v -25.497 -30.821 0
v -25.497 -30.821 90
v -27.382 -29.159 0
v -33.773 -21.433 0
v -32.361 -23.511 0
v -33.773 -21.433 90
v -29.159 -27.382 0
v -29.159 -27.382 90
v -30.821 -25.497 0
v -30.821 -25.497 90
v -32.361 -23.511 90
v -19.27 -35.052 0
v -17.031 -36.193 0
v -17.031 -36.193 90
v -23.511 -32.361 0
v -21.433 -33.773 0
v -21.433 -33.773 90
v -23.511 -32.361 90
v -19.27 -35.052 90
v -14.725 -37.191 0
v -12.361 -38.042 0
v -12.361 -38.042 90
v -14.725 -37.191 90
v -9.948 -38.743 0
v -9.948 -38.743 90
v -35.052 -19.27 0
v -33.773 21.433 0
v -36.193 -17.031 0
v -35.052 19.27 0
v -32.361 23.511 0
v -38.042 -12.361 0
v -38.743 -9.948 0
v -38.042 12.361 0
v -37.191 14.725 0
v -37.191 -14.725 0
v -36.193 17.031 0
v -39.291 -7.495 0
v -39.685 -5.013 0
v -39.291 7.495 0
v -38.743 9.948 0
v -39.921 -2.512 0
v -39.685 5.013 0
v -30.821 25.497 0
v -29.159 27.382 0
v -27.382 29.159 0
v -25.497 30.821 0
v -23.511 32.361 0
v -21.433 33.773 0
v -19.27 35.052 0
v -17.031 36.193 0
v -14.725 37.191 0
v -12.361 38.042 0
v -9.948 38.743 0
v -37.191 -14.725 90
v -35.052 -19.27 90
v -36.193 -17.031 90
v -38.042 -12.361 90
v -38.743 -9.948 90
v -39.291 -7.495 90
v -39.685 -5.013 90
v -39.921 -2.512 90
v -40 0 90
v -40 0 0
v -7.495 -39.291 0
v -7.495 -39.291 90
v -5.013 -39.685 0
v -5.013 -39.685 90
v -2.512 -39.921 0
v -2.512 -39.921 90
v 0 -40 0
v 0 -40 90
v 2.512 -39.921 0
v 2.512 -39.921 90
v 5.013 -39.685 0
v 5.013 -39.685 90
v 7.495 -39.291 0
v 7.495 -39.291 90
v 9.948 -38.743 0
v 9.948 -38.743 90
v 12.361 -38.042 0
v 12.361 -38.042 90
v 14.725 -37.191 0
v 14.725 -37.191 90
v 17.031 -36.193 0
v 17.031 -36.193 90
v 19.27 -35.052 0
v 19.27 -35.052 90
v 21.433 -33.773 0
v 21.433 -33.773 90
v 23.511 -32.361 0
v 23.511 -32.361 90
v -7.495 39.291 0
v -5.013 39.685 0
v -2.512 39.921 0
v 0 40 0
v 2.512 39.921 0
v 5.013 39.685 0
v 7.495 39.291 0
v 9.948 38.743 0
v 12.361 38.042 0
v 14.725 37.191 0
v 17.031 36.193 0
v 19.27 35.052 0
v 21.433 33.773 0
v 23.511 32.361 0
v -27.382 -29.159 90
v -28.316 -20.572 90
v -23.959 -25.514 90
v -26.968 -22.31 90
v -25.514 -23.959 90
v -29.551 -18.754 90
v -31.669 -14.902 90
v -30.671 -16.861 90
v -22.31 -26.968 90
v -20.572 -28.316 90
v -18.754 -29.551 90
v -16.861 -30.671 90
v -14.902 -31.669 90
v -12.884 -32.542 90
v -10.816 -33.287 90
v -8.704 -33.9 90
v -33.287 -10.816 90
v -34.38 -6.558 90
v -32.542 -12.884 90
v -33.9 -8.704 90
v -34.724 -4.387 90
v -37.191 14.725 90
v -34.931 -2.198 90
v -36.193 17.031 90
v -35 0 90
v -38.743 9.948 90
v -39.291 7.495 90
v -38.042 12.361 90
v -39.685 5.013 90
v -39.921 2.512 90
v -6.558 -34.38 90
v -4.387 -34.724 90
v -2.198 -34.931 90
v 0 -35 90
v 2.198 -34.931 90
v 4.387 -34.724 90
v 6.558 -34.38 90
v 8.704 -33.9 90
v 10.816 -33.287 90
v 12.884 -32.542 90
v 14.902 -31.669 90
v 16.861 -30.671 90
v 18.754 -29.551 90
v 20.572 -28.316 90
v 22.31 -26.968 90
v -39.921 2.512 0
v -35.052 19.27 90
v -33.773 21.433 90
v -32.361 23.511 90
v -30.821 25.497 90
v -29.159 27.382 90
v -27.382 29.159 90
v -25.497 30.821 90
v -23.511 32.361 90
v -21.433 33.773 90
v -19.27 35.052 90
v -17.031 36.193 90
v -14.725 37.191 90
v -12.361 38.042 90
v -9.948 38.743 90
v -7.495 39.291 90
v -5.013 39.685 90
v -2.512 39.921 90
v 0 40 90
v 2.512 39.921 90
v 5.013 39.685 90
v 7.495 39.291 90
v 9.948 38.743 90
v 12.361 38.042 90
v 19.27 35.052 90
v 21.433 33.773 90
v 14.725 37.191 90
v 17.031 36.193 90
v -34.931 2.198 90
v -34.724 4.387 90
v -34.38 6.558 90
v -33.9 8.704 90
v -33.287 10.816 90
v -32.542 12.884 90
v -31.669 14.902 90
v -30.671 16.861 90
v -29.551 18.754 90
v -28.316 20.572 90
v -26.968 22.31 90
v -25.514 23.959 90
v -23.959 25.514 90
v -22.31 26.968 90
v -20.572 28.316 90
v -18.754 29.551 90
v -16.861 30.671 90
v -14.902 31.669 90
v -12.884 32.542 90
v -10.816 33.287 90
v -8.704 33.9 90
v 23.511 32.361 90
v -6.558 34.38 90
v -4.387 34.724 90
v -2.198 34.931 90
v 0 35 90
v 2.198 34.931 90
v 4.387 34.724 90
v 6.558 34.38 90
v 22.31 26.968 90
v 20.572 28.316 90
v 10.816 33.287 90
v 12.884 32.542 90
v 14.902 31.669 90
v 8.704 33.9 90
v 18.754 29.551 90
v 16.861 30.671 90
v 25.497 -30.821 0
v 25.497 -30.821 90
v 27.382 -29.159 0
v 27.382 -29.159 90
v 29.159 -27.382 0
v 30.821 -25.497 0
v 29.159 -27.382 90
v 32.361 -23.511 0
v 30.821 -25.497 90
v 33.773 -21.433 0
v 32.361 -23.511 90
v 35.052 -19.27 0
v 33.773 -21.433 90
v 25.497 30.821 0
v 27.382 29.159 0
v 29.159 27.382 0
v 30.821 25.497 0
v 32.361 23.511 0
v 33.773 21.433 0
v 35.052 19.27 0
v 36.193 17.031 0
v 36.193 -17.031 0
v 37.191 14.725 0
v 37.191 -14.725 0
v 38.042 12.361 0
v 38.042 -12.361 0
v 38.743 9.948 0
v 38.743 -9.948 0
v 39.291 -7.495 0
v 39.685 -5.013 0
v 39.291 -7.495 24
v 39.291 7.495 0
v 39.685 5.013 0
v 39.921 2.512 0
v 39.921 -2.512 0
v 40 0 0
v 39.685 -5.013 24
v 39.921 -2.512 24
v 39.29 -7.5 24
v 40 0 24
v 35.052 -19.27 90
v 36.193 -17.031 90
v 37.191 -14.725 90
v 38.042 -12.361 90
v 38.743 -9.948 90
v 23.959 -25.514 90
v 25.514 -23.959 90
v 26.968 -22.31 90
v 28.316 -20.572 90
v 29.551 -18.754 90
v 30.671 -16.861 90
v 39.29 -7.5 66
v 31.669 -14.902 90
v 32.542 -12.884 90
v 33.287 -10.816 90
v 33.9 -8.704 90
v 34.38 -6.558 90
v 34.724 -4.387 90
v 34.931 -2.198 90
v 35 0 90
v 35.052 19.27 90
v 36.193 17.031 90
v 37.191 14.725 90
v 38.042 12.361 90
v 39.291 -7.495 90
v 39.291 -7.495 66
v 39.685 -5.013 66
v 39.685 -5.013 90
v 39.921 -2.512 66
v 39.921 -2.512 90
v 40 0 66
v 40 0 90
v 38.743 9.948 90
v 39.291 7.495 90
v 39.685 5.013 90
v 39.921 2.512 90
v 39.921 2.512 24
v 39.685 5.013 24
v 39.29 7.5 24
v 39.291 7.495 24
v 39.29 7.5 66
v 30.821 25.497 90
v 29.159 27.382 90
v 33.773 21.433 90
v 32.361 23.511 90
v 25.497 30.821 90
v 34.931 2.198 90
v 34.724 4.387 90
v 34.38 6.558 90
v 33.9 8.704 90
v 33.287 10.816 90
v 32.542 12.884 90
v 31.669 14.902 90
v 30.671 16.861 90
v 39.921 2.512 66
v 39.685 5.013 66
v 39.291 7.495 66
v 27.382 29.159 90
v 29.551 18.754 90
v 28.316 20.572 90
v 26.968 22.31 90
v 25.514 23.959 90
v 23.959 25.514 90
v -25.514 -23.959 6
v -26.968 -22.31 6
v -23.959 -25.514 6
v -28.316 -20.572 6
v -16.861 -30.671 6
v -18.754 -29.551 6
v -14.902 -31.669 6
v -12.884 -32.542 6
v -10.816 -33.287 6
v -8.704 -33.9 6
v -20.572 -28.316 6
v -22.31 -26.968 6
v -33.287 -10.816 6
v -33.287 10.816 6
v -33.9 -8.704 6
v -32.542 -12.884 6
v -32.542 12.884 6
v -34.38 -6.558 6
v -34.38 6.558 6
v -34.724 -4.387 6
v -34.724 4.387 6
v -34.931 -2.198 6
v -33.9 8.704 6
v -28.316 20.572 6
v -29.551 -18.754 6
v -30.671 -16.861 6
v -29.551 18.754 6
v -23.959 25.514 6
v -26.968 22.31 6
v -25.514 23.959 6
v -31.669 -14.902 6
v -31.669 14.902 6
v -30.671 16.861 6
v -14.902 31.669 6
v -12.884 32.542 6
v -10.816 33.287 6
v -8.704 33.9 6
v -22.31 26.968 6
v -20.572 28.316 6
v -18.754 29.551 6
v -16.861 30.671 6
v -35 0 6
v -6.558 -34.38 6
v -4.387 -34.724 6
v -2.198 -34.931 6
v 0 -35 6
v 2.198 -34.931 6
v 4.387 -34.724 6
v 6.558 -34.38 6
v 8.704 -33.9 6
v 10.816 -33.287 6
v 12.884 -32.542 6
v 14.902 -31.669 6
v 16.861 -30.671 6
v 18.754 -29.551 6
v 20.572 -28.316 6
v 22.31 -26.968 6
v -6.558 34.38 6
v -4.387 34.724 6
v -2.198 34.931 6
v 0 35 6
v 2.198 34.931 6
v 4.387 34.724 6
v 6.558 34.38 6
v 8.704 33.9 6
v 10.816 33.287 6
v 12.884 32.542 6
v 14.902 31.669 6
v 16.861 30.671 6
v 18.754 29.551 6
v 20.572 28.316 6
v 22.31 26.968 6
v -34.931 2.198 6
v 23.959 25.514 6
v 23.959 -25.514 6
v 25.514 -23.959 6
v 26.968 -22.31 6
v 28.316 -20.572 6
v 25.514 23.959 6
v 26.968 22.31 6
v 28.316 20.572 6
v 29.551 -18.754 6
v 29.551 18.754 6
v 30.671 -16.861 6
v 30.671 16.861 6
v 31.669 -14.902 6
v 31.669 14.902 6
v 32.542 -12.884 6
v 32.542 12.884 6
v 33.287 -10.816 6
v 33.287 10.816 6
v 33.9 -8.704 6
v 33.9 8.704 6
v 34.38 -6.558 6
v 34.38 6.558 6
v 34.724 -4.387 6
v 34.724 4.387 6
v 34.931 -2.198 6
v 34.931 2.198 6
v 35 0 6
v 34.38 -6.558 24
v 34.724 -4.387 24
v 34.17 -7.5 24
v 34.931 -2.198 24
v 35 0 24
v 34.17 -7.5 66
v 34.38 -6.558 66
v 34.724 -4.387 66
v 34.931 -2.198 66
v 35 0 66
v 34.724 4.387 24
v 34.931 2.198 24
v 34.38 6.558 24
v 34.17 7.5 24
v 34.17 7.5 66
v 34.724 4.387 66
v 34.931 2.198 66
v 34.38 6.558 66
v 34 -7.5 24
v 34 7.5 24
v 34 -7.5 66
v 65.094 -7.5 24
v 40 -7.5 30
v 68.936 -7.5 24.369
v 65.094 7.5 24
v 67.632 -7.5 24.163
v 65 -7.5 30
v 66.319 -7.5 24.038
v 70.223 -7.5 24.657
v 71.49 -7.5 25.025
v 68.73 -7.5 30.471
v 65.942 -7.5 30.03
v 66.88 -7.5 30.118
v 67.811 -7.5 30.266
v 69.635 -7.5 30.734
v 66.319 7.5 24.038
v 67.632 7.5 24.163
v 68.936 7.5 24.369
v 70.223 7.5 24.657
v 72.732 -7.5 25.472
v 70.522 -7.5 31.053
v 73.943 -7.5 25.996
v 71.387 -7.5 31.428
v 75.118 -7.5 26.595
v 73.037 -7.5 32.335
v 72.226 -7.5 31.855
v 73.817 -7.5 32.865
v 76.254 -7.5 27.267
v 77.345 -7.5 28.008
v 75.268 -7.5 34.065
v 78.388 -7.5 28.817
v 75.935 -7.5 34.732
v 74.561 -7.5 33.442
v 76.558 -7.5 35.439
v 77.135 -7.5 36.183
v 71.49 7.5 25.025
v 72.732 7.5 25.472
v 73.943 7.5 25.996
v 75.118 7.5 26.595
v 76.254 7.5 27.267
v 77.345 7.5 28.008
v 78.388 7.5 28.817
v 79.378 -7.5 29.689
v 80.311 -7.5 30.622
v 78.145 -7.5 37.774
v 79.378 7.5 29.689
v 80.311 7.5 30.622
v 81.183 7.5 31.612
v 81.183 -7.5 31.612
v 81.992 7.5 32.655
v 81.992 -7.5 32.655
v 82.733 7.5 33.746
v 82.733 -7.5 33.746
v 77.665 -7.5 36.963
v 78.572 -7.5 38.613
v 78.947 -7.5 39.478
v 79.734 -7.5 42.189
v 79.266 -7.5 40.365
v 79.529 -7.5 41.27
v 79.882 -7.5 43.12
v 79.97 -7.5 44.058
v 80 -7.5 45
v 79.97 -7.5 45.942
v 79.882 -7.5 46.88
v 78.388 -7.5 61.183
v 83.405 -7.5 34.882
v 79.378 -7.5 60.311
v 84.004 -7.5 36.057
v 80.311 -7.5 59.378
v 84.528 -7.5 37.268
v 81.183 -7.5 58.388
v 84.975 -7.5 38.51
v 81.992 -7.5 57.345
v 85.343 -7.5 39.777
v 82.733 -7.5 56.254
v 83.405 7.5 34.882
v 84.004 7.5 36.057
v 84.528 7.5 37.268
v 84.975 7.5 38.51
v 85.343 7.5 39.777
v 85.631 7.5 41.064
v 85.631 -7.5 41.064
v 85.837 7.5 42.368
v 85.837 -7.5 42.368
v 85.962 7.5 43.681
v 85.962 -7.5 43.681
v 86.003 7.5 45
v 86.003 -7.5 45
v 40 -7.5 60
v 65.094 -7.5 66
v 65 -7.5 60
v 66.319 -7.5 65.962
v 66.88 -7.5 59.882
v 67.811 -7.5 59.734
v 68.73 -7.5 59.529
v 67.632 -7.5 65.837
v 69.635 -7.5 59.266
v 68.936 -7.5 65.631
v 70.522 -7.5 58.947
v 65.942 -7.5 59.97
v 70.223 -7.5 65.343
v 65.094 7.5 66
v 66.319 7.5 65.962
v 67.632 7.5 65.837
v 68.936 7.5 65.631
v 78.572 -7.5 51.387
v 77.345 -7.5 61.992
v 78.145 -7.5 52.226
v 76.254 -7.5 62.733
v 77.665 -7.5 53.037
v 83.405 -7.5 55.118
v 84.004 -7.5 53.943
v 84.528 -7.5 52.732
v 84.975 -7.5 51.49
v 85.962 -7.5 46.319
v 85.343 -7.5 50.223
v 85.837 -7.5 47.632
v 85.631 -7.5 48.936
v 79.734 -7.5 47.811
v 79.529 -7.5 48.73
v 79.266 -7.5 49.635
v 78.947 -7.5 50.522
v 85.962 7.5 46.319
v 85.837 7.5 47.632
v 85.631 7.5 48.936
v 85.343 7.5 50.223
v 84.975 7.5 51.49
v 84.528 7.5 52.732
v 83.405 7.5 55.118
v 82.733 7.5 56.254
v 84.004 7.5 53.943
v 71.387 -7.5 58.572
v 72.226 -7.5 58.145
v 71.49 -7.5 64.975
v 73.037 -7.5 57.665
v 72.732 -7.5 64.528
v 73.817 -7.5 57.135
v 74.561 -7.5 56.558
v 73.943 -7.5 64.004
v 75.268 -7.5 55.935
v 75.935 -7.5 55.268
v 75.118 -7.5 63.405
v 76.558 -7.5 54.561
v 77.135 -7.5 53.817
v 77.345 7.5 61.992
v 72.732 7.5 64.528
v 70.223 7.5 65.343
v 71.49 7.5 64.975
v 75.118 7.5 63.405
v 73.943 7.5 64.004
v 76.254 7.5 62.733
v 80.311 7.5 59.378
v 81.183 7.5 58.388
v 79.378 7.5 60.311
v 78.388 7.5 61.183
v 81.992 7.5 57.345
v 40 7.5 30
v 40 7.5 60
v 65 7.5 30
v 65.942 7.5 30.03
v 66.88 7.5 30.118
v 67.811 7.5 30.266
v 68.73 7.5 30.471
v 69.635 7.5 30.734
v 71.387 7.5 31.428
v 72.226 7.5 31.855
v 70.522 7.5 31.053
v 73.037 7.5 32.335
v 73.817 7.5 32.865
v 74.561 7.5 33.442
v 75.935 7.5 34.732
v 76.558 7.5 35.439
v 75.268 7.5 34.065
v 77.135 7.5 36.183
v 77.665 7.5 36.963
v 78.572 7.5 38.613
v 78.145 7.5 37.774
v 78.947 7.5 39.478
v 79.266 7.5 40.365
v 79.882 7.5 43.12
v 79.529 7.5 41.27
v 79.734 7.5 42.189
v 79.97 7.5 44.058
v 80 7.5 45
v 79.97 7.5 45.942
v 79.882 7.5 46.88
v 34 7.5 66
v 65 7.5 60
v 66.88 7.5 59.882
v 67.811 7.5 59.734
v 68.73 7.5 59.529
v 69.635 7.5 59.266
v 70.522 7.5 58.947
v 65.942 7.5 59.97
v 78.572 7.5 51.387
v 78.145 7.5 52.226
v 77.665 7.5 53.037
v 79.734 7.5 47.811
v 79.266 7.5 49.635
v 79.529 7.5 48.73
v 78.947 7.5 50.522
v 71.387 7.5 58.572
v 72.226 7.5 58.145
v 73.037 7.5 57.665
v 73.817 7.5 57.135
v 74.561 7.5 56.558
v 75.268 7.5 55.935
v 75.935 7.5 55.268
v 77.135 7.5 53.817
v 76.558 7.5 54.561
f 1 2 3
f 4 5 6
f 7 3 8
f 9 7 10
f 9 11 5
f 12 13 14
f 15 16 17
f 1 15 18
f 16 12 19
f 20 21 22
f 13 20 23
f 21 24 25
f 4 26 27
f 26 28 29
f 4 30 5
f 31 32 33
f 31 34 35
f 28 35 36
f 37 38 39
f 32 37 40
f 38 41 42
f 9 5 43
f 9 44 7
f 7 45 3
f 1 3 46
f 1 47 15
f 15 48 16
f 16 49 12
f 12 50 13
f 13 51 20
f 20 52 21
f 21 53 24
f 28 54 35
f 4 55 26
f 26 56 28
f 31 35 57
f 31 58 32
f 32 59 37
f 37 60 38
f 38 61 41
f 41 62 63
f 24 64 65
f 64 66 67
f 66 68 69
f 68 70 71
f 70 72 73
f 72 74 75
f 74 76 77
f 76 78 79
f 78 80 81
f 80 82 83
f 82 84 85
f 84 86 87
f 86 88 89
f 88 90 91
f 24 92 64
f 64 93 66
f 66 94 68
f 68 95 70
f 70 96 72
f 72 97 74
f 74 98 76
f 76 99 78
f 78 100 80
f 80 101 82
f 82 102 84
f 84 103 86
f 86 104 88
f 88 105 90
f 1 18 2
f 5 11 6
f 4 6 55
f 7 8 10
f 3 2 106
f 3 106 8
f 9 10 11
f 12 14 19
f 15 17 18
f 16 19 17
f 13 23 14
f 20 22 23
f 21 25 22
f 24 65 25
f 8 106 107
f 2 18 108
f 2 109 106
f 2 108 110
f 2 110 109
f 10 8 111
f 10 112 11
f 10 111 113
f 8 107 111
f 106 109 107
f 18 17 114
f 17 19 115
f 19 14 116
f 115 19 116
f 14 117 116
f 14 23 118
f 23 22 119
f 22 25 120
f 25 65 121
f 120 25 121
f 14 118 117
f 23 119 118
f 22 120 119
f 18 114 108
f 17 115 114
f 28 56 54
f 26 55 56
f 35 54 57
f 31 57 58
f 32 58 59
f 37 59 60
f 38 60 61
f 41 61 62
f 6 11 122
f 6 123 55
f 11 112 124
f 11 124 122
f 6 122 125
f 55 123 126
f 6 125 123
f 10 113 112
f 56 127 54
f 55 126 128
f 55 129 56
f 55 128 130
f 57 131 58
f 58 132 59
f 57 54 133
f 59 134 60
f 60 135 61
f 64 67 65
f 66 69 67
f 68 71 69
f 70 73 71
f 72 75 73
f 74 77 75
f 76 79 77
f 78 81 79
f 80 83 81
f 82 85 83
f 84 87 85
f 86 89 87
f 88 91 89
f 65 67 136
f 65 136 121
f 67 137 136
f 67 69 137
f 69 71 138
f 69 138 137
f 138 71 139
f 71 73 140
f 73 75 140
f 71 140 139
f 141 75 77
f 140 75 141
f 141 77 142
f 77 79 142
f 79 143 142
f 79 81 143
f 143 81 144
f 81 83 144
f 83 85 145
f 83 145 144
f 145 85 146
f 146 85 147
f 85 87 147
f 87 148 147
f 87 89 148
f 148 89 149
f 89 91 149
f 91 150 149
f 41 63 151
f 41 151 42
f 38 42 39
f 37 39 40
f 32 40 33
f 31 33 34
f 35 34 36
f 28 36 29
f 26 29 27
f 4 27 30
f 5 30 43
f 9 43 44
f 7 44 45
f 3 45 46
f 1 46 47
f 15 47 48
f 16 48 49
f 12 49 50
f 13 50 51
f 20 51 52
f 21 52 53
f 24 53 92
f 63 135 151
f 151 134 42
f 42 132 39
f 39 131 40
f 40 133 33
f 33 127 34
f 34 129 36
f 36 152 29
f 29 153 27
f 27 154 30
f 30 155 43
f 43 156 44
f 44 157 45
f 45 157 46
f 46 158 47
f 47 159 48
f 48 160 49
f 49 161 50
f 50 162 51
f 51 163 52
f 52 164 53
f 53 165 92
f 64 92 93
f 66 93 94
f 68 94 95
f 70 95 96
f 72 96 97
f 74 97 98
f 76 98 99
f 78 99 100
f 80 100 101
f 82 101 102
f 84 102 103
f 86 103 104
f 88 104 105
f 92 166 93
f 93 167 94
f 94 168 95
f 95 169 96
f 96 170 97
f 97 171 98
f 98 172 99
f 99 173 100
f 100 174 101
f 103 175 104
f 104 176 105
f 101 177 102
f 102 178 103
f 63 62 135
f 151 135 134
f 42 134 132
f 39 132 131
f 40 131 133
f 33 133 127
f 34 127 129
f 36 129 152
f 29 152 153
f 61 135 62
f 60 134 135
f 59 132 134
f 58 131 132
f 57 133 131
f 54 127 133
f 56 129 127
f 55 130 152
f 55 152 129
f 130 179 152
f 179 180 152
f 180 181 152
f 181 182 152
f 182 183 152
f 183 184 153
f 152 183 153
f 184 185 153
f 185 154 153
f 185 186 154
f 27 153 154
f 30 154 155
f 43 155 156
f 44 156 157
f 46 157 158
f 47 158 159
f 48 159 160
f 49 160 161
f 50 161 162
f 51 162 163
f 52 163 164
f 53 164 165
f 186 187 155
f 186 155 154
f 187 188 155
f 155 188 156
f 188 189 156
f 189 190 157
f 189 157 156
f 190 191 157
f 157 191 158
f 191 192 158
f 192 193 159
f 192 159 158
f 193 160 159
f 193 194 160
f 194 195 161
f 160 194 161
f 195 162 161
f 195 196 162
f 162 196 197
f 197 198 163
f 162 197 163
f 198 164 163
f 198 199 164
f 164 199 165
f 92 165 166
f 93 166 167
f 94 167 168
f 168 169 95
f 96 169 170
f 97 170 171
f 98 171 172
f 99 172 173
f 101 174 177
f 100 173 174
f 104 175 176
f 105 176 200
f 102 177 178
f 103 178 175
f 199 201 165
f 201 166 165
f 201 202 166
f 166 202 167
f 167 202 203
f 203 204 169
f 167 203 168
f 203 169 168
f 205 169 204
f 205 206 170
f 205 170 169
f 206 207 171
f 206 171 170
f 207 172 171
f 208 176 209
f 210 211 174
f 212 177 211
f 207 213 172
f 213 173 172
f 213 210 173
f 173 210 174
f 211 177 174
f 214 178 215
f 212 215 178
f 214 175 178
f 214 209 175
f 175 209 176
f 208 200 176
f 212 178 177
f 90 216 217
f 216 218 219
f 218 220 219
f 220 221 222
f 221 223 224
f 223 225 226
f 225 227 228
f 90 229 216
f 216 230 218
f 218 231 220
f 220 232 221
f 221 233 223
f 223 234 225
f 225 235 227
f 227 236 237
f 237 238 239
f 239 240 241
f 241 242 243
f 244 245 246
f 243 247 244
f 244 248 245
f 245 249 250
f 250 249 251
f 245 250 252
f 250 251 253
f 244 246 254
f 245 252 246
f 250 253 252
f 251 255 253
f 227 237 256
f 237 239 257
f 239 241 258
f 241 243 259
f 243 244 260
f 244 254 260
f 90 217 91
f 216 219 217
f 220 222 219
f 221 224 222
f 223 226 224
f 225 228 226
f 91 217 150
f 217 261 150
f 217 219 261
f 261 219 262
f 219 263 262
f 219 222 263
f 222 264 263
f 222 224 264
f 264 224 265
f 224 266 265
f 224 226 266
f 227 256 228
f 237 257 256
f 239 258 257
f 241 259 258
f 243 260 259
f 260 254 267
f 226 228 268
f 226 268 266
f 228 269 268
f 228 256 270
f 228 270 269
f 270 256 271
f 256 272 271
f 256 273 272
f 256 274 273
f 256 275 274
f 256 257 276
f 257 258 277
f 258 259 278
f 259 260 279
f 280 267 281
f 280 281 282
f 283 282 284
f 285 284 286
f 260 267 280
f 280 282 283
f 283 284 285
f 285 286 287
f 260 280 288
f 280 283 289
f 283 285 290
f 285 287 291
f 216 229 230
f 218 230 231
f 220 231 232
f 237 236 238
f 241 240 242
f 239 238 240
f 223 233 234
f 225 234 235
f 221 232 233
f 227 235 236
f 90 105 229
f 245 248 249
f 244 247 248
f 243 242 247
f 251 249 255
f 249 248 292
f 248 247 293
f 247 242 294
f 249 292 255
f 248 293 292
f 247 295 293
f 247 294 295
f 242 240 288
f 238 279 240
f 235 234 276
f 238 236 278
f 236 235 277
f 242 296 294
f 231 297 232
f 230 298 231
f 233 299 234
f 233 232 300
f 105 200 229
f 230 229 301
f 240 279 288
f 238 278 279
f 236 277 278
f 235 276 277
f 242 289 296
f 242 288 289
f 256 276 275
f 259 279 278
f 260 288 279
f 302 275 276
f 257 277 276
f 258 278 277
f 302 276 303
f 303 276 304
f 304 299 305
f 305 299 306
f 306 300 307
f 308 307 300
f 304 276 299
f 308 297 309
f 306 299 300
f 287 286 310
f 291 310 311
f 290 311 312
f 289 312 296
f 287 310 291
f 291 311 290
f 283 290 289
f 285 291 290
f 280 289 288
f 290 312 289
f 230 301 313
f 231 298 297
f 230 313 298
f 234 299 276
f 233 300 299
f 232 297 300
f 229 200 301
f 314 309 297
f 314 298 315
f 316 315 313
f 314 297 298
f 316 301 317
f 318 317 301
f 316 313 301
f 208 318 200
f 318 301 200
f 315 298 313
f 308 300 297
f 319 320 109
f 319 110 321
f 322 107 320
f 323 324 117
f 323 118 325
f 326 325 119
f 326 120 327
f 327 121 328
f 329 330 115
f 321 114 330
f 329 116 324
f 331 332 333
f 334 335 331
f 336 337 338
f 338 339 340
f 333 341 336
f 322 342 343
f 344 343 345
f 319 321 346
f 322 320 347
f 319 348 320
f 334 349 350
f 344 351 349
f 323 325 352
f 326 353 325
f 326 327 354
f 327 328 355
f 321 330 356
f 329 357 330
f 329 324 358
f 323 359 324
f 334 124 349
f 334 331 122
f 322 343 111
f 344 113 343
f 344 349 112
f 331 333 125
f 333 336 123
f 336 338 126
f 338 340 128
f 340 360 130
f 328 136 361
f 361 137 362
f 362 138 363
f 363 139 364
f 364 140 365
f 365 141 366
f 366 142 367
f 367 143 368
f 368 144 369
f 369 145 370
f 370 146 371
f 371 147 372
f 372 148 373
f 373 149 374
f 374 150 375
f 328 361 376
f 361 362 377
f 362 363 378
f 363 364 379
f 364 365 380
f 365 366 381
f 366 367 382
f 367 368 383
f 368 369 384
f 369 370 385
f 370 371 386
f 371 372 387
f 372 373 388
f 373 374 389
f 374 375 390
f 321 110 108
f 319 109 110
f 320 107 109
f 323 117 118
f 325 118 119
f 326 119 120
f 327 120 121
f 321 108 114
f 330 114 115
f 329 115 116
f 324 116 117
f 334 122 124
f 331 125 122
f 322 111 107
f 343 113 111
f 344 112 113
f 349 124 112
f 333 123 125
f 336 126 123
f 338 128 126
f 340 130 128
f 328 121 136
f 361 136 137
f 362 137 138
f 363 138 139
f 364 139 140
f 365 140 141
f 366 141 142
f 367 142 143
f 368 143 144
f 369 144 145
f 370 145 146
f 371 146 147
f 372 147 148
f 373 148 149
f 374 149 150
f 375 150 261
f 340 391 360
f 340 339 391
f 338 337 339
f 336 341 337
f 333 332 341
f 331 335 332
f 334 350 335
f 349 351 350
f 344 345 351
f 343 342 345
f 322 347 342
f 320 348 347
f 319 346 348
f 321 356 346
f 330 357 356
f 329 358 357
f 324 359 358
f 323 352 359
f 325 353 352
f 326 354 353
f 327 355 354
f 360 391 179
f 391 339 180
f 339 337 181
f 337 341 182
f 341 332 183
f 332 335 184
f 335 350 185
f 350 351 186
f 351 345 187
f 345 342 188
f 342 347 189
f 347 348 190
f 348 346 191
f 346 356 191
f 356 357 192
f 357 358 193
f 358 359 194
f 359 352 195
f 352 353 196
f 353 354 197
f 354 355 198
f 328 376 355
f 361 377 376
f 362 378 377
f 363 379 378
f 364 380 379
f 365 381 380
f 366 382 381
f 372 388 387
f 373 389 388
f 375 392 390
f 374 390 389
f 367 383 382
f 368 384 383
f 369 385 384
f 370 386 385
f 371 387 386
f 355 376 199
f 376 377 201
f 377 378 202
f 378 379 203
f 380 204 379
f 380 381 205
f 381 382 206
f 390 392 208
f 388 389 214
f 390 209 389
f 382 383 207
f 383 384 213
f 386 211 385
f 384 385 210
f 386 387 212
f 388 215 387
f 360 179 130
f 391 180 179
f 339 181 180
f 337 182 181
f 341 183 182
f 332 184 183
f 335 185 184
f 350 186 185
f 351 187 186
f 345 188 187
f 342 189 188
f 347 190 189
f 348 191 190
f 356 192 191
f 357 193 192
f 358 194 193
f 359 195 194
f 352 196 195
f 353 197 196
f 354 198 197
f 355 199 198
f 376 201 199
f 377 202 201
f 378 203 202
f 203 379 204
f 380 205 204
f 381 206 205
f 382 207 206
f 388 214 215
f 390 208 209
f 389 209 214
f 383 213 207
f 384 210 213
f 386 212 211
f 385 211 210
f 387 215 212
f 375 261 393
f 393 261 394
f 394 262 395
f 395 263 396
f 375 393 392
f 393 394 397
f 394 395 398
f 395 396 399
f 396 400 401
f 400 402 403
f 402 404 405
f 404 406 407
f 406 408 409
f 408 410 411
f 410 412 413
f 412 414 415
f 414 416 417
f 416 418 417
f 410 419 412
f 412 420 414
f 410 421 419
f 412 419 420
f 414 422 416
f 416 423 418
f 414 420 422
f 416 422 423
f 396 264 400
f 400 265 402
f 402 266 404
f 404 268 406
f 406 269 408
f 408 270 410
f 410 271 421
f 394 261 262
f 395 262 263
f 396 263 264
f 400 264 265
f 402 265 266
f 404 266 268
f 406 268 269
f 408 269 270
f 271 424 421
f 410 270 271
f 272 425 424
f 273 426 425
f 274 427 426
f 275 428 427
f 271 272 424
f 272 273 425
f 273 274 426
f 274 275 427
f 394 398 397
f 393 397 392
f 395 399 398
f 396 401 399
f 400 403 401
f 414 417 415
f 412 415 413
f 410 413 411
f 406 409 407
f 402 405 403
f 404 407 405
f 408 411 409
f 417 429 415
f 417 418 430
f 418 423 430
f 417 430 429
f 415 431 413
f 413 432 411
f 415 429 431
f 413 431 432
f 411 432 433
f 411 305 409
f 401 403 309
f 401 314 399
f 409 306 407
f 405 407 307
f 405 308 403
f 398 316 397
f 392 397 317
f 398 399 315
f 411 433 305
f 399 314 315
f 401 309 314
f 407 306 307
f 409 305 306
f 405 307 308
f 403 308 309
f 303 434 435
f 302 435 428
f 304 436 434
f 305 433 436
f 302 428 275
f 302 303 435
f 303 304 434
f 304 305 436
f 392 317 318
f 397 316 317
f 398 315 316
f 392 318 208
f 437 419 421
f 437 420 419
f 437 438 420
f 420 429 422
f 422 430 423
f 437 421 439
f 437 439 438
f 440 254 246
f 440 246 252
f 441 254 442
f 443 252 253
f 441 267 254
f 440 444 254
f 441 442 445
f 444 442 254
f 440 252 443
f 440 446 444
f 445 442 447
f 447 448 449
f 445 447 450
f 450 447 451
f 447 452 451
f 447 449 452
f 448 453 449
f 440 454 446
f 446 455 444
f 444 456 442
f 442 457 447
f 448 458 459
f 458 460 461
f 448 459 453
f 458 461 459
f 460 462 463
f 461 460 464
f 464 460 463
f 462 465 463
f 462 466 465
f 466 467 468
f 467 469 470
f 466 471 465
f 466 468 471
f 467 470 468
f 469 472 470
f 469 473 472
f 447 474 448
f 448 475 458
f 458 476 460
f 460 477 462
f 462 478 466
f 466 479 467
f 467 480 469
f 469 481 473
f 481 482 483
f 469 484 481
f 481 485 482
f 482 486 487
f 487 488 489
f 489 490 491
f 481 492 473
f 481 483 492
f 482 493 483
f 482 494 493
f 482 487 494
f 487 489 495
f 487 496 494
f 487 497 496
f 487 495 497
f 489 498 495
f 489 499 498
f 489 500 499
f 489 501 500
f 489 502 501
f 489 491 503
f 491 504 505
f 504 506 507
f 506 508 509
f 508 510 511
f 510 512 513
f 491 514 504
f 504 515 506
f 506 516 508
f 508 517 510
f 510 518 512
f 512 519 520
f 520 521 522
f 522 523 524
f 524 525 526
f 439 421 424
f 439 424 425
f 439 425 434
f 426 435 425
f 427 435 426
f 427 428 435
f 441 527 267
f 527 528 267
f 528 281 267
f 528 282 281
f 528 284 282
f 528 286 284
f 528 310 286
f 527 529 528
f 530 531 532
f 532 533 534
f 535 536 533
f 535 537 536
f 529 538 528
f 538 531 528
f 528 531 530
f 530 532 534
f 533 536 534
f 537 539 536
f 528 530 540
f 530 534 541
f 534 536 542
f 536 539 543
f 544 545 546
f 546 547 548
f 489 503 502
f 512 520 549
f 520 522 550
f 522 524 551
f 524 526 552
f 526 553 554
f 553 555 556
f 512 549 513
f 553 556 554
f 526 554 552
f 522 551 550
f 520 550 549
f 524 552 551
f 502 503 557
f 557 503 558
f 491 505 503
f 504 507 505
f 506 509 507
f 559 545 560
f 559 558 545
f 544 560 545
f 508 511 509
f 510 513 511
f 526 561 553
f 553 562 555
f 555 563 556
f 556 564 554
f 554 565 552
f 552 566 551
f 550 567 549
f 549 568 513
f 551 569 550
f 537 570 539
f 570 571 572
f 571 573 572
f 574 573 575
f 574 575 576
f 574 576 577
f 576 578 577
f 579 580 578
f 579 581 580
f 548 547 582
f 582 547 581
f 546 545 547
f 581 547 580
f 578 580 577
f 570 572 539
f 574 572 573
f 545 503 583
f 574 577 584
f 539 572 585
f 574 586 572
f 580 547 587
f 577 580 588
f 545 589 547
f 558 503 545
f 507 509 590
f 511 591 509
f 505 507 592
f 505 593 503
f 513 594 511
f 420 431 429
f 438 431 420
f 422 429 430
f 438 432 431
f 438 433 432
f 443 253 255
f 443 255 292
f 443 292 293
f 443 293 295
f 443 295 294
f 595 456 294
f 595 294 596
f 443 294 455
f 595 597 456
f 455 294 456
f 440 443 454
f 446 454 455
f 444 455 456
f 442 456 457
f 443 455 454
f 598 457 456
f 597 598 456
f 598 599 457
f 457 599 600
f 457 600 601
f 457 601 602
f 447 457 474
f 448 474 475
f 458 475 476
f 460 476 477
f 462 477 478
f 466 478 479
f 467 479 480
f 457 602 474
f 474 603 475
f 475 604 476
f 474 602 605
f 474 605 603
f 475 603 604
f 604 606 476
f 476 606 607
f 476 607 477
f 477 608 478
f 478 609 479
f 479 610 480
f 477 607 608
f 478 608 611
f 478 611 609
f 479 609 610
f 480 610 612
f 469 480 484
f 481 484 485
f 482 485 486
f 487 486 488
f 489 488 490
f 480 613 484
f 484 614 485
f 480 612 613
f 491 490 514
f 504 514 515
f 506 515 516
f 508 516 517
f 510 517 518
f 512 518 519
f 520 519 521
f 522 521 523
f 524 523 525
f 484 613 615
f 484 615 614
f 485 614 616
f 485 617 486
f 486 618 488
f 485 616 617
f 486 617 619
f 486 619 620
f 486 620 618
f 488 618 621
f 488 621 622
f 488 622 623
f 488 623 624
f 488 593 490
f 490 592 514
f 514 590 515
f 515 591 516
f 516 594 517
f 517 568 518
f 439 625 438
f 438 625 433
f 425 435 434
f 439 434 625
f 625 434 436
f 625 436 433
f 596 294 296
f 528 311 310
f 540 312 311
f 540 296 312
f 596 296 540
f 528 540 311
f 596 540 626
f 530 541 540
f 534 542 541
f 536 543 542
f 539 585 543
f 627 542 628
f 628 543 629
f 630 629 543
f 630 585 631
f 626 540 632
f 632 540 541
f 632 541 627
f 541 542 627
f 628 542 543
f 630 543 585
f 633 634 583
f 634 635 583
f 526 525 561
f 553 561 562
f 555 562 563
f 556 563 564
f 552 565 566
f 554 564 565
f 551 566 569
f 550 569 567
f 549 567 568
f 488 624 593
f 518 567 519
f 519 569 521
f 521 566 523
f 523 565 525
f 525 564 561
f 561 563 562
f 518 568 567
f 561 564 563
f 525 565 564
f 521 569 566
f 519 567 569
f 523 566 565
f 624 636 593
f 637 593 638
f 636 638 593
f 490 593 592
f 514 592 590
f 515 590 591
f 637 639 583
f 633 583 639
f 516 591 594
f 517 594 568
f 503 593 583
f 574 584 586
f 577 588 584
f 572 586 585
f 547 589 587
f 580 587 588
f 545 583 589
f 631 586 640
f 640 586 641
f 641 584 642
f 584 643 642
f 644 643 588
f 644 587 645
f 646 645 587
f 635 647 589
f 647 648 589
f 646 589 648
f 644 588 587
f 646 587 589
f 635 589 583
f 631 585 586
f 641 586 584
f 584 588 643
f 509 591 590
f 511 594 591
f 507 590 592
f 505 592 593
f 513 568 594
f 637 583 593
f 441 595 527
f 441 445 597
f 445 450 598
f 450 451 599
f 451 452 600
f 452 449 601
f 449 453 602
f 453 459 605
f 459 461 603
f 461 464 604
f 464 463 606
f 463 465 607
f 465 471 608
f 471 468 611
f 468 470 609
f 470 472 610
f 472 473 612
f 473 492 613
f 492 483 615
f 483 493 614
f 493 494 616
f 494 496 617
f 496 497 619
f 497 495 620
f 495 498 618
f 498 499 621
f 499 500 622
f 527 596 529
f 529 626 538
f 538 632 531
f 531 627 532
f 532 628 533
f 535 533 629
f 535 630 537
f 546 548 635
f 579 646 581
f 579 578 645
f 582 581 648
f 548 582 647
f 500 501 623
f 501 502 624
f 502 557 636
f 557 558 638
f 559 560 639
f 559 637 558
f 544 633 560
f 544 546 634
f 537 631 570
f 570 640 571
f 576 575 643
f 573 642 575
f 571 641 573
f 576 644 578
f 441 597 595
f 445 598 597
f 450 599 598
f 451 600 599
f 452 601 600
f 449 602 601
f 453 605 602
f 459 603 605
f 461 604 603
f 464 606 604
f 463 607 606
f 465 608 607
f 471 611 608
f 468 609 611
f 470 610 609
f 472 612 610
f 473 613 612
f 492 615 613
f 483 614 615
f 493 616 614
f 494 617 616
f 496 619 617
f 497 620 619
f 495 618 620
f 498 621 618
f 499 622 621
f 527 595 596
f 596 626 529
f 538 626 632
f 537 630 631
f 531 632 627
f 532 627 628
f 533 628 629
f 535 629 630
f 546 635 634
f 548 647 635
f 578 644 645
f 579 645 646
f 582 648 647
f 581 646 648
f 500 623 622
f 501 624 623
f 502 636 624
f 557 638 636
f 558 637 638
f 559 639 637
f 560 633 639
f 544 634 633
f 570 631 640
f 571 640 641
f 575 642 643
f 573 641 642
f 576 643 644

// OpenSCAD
// Oriented Mug with D-shaped Handle
$fn = 100;

// ----- Mug dimensions -----
outer_d          = 80;   // outer diameter
inner_d          = 70;   // inner diameter
mug_height       = 90;   // total height
bottom_thickness = 6;    // bottom wall thickness

// ----- Handle dimensions -----
handle_inner_h = 30;  // inner free height (Z)
handle_inner_w = 25;  // inner free width  (X, from mug wall outward)
handle_wall    = 6;   // handle wall thickness
handle_depth   = 15;  // handle thickness in Y (depth)

// ===============================================
// Mug body
module mug_body() {
    difference() {
        // outer shell
        cylinder(d = outer_d, h = mug_height);

        // inner cavity
        translate([0, 0, bottom_thickness])
            cylinder(d = inner_d, h = mug_height - bottom_thickness);
    }
}

// ===============================================
// Handle
module handle() {

    // 2-D inner cavity profile of handle (flat at x = 0)
    module inner_profile() {
        union() {
            // rectangle part
            translate([0, -handle_inner_h/2])
                square([handle_inner_w, handle_inner_h], center = false);

            // semicircular part
            translate([handle_inner_w, 0])
                circle(r = handle_inner_h/2);
        }
    }

    difference() {
        // ----- Outer solid of handle -----
        rotate([90, 0, 0])                               // extrude along Y
            linear_extrude(height = handle_depth, center = true)
                offset(delta = handle_wall)              // add wall thickness
                    inner_profile();

        // ----- Subtract inner cavity -----
        rotate([90, 0, 0])
            linear_extrude(height = handle_depth + 0.2, center = true)
                inner_profile();
    }
}

// ===============================================
// Assemble mug and handle (handle on +X side)
union() {
    mug_body();

    // position handle: flat side flush with mug outer surface,
    // centered vertically on mug
    translate([outer_d/2, 0, mug_height/2])
        handle();
}
